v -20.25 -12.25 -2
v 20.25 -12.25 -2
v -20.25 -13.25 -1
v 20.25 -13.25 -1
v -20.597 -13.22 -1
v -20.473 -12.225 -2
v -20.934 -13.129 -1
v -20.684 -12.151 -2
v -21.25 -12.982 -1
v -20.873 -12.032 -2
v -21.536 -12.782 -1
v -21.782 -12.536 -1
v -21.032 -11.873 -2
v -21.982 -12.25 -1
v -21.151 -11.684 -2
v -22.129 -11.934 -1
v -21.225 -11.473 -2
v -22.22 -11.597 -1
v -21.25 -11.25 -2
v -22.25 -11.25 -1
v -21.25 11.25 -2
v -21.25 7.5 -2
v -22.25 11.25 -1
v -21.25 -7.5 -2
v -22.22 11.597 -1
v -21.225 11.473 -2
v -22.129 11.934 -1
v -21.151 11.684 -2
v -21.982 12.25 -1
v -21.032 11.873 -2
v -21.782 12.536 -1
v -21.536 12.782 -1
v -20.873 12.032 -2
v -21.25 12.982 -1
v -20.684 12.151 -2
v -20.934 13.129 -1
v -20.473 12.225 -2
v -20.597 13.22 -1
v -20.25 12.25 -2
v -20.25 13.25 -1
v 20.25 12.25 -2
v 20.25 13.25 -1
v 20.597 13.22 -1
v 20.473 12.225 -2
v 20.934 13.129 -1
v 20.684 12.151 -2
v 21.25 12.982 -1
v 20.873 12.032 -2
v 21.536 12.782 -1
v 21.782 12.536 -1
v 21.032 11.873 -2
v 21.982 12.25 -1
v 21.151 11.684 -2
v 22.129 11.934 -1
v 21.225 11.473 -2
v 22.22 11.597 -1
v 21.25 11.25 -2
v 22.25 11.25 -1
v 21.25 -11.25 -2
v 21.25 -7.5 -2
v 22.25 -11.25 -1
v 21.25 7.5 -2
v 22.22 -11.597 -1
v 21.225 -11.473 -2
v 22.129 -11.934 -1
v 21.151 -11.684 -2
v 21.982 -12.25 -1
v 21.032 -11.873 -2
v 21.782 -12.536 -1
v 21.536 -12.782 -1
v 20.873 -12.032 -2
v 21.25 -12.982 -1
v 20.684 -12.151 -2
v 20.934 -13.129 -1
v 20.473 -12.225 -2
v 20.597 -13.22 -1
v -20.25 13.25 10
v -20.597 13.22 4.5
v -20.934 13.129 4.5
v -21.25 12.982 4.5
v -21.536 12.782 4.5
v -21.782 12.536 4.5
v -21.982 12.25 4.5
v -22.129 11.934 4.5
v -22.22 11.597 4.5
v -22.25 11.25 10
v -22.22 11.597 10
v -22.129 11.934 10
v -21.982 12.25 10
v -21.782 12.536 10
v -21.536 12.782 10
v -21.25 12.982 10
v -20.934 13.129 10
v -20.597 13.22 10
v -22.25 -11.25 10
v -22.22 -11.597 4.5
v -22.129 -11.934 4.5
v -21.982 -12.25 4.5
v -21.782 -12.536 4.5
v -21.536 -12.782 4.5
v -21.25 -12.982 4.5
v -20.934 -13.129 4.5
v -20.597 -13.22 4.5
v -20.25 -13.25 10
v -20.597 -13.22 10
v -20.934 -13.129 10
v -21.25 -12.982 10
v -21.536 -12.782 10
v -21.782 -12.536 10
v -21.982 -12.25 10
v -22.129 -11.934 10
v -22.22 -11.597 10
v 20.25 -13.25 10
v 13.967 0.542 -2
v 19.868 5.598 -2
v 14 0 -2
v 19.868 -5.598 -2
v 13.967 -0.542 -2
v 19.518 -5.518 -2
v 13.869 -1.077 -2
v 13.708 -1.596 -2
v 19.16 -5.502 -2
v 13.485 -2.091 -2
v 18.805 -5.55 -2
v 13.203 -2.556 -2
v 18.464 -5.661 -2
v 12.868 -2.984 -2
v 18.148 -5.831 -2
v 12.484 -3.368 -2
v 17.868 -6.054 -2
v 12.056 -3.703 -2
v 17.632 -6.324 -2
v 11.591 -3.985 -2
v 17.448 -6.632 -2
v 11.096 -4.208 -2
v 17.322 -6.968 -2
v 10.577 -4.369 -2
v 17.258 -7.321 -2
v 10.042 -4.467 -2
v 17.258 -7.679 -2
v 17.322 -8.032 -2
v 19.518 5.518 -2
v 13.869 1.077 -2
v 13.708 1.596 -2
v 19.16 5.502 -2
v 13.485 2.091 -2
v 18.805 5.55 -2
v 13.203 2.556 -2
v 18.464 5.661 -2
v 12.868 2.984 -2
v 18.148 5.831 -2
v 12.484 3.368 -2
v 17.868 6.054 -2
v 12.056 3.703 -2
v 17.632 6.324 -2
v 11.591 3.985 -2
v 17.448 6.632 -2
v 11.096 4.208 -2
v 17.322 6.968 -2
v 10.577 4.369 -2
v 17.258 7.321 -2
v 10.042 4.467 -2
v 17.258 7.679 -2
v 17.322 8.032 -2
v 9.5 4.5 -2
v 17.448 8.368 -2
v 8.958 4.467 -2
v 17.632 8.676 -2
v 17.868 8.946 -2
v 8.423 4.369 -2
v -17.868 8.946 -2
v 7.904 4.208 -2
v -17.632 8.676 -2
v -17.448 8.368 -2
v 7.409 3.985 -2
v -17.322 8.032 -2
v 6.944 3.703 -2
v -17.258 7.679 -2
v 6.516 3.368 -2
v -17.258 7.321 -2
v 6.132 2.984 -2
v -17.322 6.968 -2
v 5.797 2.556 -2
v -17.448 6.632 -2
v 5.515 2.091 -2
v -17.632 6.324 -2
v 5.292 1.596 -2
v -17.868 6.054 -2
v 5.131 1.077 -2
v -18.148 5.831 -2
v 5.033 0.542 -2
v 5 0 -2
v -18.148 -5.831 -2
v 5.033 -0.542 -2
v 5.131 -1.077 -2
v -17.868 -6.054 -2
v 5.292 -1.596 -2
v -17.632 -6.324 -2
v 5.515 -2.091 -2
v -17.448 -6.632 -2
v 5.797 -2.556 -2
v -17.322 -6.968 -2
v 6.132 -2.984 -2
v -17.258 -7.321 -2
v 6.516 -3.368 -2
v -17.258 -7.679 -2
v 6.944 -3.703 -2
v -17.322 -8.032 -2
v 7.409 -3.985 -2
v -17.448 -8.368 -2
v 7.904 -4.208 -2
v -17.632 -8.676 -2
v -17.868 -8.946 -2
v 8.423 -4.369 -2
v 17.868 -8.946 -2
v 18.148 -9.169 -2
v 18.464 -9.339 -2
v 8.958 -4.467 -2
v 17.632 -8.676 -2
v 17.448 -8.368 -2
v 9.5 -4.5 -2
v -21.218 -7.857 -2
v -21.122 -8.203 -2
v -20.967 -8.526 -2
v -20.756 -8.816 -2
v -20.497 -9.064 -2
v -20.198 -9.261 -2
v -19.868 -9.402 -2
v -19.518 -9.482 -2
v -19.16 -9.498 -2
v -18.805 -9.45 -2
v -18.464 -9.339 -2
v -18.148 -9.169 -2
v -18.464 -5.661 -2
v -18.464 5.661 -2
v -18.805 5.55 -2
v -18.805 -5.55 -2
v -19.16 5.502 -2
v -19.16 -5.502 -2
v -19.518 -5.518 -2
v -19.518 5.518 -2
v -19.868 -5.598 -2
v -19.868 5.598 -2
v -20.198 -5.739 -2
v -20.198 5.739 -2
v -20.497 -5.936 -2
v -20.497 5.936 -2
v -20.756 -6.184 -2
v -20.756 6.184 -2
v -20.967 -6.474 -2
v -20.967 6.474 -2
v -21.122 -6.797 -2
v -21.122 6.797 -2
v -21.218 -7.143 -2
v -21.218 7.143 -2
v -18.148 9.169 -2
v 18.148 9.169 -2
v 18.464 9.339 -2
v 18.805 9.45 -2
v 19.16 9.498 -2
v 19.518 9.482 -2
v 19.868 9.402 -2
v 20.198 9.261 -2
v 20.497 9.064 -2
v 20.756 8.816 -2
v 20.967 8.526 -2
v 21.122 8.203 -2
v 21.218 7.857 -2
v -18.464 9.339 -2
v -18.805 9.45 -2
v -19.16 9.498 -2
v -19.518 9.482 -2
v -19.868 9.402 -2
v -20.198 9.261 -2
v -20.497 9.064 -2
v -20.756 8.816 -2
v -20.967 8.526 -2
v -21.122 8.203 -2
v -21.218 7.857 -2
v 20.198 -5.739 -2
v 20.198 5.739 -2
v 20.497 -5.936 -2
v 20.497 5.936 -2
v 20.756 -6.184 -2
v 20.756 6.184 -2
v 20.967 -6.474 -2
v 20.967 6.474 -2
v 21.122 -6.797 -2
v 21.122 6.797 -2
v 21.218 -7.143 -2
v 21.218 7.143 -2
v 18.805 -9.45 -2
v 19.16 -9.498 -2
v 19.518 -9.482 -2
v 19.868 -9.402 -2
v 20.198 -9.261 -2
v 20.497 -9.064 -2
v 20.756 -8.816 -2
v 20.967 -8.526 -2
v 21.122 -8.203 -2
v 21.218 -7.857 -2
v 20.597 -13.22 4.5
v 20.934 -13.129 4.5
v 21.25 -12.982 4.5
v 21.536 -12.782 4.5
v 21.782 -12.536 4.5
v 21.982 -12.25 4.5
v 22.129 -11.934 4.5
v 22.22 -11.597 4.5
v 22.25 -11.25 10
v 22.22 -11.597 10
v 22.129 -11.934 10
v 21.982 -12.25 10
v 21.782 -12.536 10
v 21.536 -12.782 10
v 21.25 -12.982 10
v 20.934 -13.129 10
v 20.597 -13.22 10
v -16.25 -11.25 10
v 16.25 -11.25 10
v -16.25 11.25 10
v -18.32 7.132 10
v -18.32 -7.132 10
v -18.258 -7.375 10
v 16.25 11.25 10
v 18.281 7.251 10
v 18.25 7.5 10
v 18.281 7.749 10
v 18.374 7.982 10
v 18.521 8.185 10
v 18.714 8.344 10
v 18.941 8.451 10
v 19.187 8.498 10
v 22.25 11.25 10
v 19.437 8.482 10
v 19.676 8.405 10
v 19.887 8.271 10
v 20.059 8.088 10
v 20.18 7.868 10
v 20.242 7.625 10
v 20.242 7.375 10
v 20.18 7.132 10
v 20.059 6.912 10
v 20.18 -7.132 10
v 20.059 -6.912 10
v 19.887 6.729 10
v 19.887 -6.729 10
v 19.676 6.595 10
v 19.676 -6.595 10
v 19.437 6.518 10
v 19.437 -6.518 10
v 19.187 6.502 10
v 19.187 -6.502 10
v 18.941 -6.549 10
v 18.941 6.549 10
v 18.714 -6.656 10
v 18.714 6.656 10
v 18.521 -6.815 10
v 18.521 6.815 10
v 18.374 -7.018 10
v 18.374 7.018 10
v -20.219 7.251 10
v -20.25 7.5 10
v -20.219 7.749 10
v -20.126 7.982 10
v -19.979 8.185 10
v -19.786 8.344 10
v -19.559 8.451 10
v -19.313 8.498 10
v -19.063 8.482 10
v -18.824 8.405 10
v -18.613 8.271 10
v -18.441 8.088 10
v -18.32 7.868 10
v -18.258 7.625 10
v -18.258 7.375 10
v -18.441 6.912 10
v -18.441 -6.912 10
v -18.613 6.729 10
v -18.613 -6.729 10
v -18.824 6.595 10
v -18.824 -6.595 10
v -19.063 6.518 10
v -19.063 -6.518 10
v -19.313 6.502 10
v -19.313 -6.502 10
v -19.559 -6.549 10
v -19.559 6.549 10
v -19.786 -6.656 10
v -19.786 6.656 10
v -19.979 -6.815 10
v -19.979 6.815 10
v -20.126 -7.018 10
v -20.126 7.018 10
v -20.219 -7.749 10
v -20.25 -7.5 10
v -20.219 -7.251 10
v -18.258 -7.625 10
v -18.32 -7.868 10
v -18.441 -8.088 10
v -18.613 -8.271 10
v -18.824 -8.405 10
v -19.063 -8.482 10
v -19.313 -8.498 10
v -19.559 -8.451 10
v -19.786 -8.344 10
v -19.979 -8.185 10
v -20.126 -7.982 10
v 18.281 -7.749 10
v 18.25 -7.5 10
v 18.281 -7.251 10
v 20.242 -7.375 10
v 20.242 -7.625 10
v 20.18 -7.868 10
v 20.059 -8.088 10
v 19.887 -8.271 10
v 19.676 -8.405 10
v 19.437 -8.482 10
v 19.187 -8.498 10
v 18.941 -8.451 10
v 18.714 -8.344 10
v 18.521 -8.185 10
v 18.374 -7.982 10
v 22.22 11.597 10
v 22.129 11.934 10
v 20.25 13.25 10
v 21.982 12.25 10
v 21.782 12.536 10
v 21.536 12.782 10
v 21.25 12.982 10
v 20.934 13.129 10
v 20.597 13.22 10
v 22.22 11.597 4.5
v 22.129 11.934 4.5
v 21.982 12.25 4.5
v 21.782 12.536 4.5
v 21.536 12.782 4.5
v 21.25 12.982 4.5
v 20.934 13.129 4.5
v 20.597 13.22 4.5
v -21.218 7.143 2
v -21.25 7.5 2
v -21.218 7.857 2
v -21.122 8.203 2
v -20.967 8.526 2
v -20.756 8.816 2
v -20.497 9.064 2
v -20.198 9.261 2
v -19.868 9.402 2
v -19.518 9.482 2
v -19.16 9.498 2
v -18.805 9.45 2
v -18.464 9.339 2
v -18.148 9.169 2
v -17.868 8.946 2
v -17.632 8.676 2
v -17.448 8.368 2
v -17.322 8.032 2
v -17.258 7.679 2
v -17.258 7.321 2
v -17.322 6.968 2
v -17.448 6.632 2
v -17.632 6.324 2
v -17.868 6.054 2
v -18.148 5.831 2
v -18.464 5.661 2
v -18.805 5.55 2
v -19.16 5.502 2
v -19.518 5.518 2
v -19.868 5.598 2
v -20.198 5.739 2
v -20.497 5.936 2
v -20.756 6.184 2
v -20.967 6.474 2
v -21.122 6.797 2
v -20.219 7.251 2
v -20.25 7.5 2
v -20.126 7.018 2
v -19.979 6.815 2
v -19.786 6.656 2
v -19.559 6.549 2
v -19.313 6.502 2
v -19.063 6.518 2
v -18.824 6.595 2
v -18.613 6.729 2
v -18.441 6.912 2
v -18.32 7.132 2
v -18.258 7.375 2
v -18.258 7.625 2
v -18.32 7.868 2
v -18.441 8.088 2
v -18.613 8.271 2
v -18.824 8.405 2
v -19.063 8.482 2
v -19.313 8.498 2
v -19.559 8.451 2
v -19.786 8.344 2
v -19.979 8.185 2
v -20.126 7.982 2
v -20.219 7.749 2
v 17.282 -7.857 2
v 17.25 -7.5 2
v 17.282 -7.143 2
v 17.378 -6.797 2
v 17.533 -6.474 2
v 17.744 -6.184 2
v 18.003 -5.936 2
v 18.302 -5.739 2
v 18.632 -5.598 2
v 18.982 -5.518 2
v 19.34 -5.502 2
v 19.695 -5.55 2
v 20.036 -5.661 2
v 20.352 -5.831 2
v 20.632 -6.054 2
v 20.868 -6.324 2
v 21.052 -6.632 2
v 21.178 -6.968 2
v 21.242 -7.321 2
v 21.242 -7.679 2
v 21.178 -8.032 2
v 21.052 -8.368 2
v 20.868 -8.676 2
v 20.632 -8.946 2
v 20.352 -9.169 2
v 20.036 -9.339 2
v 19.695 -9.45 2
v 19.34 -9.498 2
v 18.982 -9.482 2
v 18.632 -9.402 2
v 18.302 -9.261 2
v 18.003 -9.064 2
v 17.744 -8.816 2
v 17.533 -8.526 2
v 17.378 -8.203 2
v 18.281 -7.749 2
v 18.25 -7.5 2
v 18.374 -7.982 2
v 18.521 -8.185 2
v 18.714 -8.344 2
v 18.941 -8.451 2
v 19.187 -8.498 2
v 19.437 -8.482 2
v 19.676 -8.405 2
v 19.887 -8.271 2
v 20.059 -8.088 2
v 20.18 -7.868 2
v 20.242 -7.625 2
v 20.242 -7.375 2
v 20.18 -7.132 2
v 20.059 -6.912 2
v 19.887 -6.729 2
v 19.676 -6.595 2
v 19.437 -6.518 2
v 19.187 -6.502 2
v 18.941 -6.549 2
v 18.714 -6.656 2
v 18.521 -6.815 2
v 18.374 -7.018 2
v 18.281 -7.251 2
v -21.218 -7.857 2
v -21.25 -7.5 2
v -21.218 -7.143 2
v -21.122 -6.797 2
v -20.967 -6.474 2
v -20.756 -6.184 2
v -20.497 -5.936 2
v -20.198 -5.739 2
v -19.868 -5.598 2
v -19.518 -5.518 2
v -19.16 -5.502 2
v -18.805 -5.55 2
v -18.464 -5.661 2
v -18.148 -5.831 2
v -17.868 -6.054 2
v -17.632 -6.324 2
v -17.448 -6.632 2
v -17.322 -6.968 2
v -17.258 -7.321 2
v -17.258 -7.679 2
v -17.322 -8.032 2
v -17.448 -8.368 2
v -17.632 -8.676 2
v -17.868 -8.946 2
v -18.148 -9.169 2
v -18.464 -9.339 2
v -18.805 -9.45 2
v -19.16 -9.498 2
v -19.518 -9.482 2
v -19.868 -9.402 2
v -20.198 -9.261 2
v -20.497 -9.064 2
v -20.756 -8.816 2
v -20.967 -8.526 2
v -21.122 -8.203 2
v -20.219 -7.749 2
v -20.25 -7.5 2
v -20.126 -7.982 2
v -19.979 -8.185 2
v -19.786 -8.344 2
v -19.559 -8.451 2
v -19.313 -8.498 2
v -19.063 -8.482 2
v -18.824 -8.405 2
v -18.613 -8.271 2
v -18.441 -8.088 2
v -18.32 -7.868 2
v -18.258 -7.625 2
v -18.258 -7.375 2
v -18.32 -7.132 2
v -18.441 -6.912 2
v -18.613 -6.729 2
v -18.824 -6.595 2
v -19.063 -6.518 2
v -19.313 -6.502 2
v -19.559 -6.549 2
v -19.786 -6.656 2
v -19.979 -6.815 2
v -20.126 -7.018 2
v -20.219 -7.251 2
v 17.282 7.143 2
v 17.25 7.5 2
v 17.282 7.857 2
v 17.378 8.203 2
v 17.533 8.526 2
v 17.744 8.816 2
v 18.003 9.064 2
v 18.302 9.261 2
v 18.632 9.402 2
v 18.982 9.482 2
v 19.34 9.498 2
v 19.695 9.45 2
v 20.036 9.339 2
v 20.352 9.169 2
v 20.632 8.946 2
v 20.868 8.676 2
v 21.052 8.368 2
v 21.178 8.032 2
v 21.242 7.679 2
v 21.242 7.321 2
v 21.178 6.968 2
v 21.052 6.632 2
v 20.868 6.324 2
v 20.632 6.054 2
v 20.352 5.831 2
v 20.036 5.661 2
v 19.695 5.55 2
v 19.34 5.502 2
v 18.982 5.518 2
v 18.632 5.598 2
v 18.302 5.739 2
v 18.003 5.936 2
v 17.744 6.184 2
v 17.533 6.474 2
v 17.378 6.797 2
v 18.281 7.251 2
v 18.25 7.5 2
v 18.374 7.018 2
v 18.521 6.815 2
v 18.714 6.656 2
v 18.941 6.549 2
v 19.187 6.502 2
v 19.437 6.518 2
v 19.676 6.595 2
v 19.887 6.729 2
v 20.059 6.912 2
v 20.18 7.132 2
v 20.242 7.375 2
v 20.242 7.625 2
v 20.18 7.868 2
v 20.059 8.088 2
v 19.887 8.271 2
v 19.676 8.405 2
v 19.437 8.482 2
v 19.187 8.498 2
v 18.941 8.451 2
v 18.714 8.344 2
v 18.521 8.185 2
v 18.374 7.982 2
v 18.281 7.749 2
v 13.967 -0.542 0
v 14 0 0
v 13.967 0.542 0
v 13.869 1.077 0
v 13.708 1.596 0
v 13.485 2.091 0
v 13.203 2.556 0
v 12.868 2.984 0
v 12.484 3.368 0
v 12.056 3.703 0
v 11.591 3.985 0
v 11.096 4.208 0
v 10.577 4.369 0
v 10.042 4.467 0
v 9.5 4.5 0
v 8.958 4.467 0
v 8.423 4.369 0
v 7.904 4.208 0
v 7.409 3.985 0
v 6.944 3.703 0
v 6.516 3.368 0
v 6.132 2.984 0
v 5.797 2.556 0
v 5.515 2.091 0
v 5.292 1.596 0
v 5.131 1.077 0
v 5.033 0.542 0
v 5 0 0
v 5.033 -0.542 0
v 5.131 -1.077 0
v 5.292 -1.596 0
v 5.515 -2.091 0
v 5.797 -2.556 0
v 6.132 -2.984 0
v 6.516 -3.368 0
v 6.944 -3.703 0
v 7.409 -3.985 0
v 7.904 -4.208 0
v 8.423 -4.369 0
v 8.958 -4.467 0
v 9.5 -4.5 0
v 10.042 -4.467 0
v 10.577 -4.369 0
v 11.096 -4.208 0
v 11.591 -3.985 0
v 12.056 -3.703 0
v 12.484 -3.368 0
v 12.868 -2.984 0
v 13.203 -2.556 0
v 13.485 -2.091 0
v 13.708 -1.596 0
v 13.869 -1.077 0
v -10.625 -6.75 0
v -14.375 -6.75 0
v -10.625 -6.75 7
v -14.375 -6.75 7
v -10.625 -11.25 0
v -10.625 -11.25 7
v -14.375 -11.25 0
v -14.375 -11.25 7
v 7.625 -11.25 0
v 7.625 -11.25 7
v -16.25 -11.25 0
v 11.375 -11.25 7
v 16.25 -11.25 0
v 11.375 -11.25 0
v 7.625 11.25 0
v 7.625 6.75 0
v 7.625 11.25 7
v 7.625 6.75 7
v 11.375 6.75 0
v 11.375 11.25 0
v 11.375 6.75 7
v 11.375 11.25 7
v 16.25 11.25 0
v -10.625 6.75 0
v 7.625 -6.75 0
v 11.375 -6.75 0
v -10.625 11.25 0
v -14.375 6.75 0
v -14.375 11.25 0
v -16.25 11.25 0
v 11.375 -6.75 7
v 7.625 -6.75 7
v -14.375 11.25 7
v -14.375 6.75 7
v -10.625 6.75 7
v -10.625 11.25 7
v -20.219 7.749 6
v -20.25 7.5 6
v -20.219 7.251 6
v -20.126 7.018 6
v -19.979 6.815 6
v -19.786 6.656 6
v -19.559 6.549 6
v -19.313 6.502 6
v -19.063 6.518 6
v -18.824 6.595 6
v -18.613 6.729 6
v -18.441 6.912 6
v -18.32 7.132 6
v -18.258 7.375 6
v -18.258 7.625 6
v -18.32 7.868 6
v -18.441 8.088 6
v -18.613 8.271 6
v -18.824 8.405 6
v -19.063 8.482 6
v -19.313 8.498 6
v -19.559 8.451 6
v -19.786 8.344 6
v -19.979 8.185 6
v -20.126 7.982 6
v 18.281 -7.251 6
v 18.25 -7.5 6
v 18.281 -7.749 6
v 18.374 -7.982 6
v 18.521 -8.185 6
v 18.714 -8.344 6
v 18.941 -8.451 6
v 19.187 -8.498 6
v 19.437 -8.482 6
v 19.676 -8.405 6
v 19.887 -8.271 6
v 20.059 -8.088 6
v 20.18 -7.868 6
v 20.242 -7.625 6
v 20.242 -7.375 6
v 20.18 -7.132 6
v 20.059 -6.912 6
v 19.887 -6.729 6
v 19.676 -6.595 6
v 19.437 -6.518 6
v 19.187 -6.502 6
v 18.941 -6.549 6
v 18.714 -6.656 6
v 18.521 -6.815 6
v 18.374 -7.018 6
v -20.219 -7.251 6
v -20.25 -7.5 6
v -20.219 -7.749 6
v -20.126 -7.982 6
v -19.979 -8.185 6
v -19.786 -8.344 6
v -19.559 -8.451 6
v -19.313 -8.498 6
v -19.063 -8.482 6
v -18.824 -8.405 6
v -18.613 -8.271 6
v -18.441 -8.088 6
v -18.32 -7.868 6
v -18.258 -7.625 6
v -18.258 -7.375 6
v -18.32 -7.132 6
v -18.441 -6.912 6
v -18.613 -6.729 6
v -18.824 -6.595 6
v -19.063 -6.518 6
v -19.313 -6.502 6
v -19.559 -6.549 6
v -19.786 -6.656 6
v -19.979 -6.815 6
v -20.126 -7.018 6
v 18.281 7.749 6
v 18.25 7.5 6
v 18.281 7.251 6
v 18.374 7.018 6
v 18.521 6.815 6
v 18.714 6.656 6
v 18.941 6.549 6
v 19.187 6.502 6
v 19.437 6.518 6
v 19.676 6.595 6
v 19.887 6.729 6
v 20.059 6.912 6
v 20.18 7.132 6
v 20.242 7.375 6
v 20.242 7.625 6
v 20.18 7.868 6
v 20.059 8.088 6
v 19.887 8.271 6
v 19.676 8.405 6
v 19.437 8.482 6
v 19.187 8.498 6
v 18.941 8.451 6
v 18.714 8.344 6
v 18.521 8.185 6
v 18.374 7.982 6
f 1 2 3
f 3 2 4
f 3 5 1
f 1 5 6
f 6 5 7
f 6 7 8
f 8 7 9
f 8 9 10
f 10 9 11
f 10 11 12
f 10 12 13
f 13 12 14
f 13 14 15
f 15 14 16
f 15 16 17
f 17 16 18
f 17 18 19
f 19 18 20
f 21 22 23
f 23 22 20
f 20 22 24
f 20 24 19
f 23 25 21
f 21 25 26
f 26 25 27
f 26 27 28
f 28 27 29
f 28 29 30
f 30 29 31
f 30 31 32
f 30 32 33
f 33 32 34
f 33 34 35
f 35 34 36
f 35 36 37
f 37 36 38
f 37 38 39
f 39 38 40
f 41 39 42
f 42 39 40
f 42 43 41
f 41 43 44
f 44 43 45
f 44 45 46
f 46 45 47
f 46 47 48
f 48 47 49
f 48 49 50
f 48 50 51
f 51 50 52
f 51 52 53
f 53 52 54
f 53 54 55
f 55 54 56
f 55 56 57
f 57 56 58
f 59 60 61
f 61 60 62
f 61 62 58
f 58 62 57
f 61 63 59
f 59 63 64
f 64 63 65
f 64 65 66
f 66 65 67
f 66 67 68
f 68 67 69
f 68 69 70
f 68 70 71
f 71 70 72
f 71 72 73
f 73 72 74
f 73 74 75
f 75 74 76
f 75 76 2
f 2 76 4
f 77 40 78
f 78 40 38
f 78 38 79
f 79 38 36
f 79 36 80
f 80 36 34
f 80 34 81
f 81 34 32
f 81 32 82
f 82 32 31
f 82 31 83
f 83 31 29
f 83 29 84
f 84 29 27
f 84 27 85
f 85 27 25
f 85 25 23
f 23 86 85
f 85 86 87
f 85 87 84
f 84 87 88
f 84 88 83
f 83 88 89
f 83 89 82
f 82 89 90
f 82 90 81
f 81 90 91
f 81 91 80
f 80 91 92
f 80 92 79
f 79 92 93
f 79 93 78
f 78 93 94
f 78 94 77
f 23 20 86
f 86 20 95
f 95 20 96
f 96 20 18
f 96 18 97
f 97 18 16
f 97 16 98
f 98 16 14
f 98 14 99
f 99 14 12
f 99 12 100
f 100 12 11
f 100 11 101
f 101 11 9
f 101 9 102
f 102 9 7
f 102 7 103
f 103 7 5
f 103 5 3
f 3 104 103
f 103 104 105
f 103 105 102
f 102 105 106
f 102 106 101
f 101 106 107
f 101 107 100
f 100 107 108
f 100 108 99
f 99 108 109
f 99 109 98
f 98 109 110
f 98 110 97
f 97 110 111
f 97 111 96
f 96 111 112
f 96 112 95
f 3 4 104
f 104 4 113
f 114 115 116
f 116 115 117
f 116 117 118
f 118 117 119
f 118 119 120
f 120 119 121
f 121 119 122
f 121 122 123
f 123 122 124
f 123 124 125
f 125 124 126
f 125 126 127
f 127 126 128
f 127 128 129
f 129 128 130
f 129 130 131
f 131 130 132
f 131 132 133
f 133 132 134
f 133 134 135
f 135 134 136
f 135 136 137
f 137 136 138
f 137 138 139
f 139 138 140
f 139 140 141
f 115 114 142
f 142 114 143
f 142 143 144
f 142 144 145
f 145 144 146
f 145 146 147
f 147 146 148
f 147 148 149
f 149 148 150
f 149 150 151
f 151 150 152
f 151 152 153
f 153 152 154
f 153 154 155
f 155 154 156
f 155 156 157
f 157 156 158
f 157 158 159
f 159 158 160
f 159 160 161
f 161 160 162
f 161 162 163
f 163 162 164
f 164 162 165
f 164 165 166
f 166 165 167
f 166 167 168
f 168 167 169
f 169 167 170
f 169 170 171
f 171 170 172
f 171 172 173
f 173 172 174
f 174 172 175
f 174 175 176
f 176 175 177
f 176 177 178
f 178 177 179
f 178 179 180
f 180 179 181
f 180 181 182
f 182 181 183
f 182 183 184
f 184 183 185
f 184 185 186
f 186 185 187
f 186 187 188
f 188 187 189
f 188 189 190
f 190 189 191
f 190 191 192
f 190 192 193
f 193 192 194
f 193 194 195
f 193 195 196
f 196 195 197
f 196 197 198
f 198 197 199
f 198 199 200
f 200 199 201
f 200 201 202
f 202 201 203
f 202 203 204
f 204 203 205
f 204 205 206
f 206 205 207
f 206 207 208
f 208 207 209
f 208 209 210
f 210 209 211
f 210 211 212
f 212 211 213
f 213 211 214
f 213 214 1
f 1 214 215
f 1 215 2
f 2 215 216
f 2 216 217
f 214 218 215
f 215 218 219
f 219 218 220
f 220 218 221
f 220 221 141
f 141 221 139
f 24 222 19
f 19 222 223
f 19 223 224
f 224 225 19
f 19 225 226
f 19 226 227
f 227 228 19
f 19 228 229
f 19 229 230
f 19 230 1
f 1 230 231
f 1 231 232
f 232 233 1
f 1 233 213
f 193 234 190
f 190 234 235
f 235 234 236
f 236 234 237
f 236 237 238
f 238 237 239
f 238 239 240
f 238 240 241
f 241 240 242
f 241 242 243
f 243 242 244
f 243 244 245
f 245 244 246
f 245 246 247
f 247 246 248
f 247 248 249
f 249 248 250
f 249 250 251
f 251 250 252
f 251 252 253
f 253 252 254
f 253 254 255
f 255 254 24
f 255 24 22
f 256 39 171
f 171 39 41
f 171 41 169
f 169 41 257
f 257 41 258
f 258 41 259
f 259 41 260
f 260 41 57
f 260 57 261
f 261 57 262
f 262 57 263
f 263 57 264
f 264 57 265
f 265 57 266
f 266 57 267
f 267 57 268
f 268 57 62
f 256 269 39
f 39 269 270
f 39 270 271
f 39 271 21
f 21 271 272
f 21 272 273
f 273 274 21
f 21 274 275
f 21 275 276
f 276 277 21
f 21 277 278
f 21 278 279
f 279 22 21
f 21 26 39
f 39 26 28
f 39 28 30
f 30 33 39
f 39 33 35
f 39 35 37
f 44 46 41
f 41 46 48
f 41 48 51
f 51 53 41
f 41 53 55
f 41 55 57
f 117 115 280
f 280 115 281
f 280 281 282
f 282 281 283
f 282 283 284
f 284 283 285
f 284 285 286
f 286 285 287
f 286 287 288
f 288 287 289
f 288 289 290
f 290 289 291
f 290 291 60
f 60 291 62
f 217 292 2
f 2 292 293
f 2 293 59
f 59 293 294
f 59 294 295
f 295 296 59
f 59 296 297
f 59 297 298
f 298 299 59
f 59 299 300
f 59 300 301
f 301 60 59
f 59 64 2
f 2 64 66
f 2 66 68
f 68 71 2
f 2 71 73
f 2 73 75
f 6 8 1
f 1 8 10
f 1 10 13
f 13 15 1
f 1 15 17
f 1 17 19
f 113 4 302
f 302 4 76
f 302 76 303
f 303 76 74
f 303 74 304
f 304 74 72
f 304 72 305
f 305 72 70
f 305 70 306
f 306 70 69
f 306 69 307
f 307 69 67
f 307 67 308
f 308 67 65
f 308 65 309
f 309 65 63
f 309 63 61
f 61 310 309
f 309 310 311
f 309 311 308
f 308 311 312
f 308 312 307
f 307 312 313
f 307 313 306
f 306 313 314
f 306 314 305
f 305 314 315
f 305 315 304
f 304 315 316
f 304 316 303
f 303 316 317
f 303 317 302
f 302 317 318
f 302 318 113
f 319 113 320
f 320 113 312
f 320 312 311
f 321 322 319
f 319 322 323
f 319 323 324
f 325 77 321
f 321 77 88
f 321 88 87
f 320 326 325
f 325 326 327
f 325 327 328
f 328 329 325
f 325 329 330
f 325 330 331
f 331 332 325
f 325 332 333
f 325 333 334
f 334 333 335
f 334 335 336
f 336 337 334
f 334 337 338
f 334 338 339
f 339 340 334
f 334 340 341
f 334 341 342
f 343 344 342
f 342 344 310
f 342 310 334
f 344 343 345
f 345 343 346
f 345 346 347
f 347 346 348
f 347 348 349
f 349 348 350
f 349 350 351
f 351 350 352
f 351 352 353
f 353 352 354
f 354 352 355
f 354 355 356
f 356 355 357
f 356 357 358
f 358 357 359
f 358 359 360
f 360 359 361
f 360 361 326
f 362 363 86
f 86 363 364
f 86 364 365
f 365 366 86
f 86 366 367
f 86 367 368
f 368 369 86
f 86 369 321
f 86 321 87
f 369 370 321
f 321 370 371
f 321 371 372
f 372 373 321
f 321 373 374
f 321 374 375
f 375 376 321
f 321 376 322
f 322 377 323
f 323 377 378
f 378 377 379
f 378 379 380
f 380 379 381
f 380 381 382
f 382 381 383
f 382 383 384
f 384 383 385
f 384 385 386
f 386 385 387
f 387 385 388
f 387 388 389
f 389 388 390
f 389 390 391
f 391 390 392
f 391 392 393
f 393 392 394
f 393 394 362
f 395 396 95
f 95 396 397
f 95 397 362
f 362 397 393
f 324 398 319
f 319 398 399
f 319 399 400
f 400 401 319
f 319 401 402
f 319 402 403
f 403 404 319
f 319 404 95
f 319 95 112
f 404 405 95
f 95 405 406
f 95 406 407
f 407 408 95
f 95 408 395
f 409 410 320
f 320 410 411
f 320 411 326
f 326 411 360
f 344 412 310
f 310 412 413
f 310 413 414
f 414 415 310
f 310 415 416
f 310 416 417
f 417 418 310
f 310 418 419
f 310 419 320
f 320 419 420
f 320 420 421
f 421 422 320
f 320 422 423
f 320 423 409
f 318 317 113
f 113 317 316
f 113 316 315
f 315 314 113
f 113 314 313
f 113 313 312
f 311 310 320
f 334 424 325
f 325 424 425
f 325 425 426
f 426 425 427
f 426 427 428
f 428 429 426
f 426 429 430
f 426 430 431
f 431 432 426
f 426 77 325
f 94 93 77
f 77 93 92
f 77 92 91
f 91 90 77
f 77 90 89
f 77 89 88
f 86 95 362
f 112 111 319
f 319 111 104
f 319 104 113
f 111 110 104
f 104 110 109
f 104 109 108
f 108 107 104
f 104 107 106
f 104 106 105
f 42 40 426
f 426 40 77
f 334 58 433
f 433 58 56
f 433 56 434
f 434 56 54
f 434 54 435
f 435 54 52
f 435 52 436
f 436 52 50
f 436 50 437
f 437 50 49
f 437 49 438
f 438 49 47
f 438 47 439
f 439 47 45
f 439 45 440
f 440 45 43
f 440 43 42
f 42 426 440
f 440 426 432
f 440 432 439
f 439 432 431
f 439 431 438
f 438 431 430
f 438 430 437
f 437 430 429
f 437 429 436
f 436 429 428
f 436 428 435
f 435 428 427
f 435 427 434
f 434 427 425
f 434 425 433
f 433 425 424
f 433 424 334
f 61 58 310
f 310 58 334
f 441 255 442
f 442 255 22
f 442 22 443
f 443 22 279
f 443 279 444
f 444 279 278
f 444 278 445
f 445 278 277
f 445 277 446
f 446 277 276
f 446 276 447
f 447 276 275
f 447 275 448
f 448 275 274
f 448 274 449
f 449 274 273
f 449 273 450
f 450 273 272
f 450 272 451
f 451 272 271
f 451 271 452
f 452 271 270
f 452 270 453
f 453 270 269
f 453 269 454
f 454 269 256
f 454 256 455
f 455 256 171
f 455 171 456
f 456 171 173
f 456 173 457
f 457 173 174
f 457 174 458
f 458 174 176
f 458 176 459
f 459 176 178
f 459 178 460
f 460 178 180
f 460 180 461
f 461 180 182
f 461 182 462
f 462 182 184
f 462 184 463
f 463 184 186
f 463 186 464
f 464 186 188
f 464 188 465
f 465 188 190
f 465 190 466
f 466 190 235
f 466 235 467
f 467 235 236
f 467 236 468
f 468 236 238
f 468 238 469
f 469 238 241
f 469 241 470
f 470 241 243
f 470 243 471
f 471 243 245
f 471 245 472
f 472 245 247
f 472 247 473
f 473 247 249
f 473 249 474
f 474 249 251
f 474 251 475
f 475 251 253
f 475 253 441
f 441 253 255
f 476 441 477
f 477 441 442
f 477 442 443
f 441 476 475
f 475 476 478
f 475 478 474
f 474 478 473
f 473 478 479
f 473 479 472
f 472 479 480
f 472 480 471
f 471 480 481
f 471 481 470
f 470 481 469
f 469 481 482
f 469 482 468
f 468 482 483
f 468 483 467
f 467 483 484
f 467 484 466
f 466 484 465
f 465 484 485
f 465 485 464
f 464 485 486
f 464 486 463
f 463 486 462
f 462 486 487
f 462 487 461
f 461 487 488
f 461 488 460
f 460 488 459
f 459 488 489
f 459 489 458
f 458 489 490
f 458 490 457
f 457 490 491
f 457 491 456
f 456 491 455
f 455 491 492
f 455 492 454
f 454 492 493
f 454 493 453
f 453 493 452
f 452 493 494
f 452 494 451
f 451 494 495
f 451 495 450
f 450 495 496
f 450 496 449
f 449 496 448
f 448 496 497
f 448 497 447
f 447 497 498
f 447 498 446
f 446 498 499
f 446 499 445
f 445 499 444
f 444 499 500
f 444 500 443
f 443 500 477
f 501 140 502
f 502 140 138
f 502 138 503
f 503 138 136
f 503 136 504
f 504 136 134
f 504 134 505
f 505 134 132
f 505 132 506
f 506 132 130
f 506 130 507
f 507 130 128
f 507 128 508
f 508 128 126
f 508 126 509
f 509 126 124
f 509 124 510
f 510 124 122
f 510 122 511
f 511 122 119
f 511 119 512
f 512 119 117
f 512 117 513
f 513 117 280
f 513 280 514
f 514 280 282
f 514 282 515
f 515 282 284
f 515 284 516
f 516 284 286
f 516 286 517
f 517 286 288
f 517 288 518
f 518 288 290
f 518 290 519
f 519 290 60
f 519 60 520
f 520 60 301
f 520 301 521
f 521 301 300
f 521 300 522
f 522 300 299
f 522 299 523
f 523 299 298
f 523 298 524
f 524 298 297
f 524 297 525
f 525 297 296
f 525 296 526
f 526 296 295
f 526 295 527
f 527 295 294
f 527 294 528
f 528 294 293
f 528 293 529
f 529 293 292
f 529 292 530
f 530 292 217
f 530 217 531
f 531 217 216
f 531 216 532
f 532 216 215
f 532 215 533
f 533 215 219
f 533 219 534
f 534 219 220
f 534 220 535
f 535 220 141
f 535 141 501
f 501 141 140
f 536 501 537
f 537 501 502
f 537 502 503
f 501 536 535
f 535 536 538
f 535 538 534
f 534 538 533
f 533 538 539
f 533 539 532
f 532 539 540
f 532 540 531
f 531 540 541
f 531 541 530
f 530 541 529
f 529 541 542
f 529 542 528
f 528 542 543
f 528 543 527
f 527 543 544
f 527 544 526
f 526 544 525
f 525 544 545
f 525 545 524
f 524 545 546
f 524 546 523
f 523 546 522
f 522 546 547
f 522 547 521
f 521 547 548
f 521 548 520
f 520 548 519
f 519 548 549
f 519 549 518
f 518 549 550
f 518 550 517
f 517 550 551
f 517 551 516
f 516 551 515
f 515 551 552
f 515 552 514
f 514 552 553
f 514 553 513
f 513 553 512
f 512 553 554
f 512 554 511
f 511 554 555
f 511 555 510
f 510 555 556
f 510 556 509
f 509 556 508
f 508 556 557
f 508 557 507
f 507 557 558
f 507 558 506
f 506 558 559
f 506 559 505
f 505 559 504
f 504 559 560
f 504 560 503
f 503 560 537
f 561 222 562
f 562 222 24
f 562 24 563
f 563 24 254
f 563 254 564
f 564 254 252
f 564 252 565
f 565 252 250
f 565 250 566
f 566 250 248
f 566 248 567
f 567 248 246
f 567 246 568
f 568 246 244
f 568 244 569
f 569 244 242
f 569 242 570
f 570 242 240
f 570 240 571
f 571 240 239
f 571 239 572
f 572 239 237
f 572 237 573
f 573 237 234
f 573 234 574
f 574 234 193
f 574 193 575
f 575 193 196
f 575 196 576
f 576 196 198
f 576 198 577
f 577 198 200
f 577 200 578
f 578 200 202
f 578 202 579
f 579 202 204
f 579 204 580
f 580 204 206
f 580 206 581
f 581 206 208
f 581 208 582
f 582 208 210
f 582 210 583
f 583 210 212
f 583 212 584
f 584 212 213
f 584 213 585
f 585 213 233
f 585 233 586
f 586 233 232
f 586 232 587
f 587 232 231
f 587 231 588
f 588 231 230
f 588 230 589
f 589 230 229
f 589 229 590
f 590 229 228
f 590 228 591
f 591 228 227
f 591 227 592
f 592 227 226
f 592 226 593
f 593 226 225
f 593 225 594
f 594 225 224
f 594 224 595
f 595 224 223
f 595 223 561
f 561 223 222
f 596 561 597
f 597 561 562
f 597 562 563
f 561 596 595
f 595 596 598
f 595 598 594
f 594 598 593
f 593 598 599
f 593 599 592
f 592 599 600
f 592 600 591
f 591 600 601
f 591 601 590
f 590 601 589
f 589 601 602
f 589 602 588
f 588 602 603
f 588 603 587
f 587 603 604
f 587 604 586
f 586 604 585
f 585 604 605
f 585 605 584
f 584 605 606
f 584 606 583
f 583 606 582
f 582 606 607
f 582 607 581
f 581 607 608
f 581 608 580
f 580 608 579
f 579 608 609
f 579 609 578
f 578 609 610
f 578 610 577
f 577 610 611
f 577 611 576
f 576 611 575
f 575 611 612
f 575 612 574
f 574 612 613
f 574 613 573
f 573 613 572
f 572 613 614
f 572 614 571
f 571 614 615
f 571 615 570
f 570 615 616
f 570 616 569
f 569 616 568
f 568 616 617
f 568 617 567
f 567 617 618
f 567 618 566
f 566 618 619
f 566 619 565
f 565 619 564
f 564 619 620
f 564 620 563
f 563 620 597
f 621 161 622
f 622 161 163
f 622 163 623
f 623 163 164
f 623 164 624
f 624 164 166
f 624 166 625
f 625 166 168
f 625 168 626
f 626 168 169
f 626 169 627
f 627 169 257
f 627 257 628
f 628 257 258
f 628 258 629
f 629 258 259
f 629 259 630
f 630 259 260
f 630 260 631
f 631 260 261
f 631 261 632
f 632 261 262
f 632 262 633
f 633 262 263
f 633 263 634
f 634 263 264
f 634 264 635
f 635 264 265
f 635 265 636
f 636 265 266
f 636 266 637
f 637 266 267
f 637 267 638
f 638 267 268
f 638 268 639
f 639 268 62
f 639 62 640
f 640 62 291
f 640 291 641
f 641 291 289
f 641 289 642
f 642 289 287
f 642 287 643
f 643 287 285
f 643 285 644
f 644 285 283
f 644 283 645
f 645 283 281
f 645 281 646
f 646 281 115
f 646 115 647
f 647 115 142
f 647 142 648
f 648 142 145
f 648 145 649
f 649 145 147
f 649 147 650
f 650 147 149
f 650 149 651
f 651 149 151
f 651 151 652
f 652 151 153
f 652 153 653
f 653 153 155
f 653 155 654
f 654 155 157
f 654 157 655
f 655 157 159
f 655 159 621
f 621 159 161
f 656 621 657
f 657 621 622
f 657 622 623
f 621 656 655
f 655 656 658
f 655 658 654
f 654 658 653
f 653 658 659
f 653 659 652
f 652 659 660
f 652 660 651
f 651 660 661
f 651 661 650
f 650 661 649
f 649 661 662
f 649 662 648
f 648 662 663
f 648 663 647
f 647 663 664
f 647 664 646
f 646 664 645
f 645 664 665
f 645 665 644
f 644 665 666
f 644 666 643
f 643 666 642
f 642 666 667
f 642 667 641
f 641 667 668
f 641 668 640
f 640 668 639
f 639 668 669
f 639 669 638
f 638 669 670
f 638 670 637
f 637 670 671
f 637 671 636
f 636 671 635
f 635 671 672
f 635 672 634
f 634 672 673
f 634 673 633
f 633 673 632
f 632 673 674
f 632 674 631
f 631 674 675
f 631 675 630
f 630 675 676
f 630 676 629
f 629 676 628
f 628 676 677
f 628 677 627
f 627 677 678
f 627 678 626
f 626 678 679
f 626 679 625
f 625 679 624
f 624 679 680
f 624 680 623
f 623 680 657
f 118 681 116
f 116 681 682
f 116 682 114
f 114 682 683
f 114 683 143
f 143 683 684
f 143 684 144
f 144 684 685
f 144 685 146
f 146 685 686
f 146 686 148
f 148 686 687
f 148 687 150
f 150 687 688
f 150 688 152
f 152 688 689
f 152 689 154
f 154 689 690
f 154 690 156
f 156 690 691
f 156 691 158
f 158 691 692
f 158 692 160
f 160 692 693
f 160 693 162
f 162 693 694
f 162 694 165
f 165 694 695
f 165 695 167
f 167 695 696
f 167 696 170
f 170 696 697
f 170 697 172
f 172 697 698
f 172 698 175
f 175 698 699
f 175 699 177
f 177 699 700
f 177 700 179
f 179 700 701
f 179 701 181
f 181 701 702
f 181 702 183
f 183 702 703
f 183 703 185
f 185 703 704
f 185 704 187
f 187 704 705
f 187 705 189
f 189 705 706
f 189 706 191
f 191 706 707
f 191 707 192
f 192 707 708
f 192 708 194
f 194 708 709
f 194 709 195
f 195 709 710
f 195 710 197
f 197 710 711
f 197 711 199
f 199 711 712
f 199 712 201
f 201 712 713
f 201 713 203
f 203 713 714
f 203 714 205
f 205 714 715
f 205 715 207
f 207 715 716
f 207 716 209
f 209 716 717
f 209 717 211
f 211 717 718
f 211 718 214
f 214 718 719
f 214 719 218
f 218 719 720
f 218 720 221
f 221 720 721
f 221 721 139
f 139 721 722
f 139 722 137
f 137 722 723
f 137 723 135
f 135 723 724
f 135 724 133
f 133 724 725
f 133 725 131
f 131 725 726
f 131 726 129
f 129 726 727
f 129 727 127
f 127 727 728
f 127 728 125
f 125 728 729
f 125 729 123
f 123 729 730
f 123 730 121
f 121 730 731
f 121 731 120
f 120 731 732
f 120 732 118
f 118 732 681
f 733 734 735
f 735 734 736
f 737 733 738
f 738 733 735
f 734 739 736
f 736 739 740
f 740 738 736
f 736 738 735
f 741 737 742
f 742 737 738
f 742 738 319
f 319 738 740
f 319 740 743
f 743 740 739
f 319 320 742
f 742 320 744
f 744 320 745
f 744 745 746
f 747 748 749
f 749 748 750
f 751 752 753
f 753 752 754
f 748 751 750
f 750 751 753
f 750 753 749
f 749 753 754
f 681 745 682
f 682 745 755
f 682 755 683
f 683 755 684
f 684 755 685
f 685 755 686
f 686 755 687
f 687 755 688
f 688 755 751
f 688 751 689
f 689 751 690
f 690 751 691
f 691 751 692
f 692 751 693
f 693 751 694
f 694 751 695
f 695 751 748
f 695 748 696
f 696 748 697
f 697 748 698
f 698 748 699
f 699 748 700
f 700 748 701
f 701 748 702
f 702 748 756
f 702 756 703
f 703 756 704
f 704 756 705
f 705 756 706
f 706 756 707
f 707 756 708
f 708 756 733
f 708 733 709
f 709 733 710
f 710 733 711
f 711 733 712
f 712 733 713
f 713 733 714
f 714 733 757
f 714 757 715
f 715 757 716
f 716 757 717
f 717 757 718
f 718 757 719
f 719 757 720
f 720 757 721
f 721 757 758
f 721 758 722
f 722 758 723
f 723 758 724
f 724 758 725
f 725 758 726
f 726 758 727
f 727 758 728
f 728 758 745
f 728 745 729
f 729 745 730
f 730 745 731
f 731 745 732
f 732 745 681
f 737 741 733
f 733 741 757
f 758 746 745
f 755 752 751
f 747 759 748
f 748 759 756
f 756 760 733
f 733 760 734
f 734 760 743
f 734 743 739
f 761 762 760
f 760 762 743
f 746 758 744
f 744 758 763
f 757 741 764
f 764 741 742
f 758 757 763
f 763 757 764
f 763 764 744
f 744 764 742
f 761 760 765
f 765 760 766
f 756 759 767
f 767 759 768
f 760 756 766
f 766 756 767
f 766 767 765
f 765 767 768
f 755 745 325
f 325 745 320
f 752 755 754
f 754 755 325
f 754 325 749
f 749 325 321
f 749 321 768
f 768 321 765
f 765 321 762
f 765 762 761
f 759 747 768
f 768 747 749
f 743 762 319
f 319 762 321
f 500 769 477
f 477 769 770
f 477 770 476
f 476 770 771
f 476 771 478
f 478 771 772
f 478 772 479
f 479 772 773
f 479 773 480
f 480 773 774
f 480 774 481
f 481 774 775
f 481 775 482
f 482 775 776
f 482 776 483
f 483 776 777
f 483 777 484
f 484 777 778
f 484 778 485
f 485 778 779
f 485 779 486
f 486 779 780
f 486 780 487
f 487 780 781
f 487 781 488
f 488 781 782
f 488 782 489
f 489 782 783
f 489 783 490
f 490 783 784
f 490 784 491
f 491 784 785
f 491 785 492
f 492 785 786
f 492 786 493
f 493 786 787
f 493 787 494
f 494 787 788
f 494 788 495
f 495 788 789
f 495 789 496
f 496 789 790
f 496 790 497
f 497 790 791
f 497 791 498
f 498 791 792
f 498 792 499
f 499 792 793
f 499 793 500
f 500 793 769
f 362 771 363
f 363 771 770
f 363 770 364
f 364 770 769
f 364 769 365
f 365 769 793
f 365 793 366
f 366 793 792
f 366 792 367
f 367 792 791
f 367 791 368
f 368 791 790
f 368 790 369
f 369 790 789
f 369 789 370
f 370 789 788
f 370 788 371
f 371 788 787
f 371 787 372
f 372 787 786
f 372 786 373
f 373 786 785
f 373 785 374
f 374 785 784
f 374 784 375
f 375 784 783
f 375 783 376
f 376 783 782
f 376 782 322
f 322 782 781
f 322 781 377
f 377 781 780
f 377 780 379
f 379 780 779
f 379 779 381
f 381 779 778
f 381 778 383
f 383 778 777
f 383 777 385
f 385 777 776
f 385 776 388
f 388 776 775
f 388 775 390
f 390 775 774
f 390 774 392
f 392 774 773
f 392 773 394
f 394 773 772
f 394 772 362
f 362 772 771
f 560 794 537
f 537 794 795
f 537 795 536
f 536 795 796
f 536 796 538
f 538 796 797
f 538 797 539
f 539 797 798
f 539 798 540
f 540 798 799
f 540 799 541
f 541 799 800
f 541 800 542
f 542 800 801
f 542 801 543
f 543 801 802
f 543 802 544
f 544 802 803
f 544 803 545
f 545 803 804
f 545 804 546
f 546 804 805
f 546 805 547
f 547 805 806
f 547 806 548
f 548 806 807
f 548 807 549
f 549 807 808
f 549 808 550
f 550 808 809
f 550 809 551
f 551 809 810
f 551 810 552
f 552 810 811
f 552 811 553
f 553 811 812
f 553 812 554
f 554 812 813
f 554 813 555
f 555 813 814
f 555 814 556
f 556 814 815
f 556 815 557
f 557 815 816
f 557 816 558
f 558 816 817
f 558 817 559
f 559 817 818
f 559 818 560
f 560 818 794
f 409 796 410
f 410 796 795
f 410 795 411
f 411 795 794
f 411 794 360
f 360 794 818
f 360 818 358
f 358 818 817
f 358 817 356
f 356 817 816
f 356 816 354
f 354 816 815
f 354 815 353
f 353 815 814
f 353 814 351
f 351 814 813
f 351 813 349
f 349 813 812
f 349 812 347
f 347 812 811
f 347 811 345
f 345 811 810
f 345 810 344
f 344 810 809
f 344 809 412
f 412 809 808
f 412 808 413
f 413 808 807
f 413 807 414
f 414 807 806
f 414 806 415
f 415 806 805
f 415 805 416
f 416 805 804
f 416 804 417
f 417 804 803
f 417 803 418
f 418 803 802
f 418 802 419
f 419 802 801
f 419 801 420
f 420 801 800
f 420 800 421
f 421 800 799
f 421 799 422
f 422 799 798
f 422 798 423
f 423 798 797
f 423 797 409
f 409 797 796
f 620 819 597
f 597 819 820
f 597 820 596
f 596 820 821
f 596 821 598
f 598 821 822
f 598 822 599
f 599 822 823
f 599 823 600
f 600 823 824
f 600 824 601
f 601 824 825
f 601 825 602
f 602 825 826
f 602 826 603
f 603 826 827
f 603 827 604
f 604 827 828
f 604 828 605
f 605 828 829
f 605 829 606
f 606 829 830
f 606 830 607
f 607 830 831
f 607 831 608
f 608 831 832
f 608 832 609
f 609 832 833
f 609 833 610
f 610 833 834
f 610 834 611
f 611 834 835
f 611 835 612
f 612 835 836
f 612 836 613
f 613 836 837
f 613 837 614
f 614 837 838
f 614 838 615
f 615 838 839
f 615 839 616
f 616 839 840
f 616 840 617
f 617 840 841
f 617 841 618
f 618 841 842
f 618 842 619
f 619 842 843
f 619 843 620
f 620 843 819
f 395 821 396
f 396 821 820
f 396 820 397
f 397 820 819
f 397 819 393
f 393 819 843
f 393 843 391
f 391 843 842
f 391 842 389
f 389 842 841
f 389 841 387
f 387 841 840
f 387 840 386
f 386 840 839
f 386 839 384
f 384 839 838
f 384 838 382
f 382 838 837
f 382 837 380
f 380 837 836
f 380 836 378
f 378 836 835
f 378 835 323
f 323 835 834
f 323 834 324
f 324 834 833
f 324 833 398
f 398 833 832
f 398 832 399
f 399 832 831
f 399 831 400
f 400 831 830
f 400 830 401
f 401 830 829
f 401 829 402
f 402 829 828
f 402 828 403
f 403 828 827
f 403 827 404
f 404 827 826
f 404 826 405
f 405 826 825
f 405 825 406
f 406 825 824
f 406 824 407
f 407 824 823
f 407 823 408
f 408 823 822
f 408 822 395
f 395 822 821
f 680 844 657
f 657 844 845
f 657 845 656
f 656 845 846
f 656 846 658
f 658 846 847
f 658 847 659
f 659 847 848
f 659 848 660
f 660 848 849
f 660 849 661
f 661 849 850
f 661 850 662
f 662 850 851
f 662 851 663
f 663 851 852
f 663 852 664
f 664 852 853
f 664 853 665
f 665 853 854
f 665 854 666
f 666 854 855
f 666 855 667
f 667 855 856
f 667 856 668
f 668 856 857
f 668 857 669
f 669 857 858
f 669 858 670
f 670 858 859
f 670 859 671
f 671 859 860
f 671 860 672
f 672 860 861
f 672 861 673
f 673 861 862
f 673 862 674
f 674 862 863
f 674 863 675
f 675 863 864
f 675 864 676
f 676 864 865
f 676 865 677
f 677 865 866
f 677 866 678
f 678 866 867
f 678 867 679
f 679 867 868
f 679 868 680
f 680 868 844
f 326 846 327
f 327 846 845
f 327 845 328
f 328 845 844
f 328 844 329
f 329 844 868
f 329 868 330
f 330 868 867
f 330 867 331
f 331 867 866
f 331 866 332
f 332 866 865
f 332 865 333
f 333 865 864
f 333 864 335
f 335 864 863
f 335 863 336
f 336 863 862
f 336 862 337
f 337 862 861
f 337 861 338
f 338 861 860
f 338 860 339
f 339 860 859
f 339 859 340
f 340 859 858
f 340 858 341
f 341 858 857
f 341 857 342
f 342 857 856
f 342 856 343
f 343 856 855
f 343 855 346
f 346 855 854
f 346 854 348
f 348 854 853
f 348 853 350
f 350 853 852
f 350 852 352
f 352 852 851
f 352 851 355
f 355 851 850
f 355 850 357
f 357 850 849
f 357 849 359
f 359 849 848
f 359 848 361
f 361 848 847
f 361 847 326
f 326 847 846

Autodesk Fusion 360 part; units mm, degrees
sketch "Sketch1" plane through (0, 0, 0) normal (0, 0, 1) x (1, 0, 0)
  line L0 (-16.25, 11.25) -> (16.25, 11.25)
  line L1 (16.25, 11.25) -> (16.25, -11.25)
  line L2 (16.25, -11.25) -> (-16.25, -11.25)
  line L3 (-16.25, -11.25) -> (-16.25, 11.25)
  line L4 (-22.25, 13.25) -> (22.25, 13.25)
  line L5 (22.25, 13.25) -> (22.25, -13.25)
  line L6 (22.25, -13.25) -> (-22.25, -13.25)
  line L7 (-22.25, -13.25) -> (-22.25, 13.25)
  line L8 (-22.25, 13.25) -> (22.25, -13.25) construction
  line L9 (22.25, 13.25) -> (-22.25, -13.25) construction
  line L10 (-19.25, 7.5) -> (-19.25, -7.5) construction
  line L11 (-22.25, 0) -> (-16.25, 0) construction
  line L12 (16.25, 0) -> (22.25, 0) construction
  line L13 (19.25, 7.5) -> (19.25, -7.5) construction
  circle A0 centre (-19.25, 7.5) radius 1
  circle A1 centre (-19.25, -7.5) radius 1
  circle A2 centre (19.25, -7.5) radius 1
  circle A3 centre (19.25, 7.5) radius 1
  point P0 (-19.25, 0)
  point P1 (-19.25, 0)
  point P2 (19.25, 0)
  point P3 (19.25, 0)
  dimension "d1" = 32.5
  dimension "d2" = 22.5
  dimension "d3" = 2
  dimension "d4" = 6
  dimension "d21" = 6
  dimension "d22" = 2
  dimension "d23" = 15
  dimension "d24" = 2
extrude "Extrude1" add sketch "Sketch1" against normal blind 2 contours L0 L1 L2 L3 | L4 L5 L6 L7
extrude "Extrude2" add sketch "Sketch1" along normal blind 10
sketch "Sketch2" plane through (0, 0, 0) normal (0, 0, 1) x (-1, 0, 0)
  line L0 (-16.25, 11.25) -> (-16.25, -11.25)
  line L1 (-16.25, -11.25) -> (16.25, -11.25)
  line L2 (16.25, -11.25) -> (16.25, 11.25)
  line L3 (16.25, 11.25) -> (-16.25, 11.25)
  line L4 (12.5, 9) -> (12.5, -9) construction
  line L5 (12.5, -9) -> (-9.5, -9) construction
  line L6 (-9.5, 9) -> (12.5, 9) construction
  line L7 (-9.5, -9) -> (-9.5, 9) construction
  line L8 (12.5, -9) -> (-9.5, 9) construction
  line L9 (12.5, 9) -> (-9.5, -9) construction
  line L10 (14.375, -11.25) -> (10.625, -11.25)
  line L11 (10.625, -11.25) -> (10.625, -6.75)
  line L12 (10.625, -6.75) -> (14.375, -6.75)
  line L13 (14.375, -6.75) -> (14.375, -11.25)
  line L14 (14.375, -11.25) -> (10.625, -6.75) construction
  line L15 (10.625, -11.25) -> (14.375, -6.75) construction
  line L16 (-7.625, -11.25) -> (-11.375, -11.25)
  line L17 (-11.375, -11.25) -> (-11.375, -6.75)
  line L18 (-11.375, -6.75) -> (-7.625, -6.75)
  line L19 (-7.625, -6.75) -> (-7.625, -11.25)
  line L20 (-7.625, -11.25) -> (-11.375, -6.75) construction
  line L21 (-11.375, -11.25) -> (-7.625, -6.75) construction
  line L22 (14.375, 11.25) -> (10.625, 11.25)
  line L23 (10.625, 11.25) -> (10.625, 6.75)
  line L24 (10.625, 6.75) -> (14.375, 6.75)
  line L25 (14.375, 6.75) -> (14.375, 11.25)
  line L26 (14.375, 11.25) -> (10.625, 6.75) construction
  line L27 (10.625, 11.25) -> (14.375, 6.75) construction
  line L28 (-11.375, 11.25) -> (-7.625, 11.25)
  line L29 (-7.625, 11.25) -> (-7.625, 6.75)
  line L30 (-7.625, 6.75) -> (-11.375, 6.75)
  line L31 (-11.375, 6.75) -> (-11.375, 11.25)
  line L32 (-11.375, 11.25) -> (-7.625, 6.75) construction
  line L33 (-7.625, 11.25) -> (-11.375, 6.75) construction
  circle A0 centre (12.5, -9) radius 0.875
  circle A1 centre (-9.5, -9) radius 0.875
  circle A2 centre (-9.5, 9) radius 0.875
  circle A3 centre (12.5, 9) radius 0.875
  circle A4 centre (-9.5, 0) radius 4.5
  point P0 (1.5, 0)
  point P1 (12.5, -9)
  point P2 (-9.5, -9)
  point P3 (12.5, 9)
  point P4 (-9.5, 9)
  dimension "d9" = 18
  dimension "d10" = 22
  dimension "d11" = 1.5
  dimension "d12" = 3.75
  dimension "d13" = 1.75
  dimension "d16" = 9
extrude "Extrude3" add sketch "Sketch2" along normal blind 7 contours L3 L28 L29 L30 L31 | L1 L16 L17 L18 L19 | L3 L22 L23 L24 L25 | L1 L10 L11 L12 L13 | A0 | A1 | A2 | A3
extrude "Extrude4" cut sketch "Sketch2" against normal through all contours A4
sketch "Sketch3" plane through (0, 0, -2) normal (0, 0, -1) x (1, 0, 0)
  circle A0 centre (9.5, 0) radius 4.5
  circle A1 centre (19.25, -7.5) radius 1
  circle A2 centre (-19.25, 7.5) radius 1
  circle A3 centre (19.25, 7.5) radius 1
  circle A4 centre (-19.25, -7.5) radius 1
  line L0 (22.25, 13.25) -> (-22.25, 13.25)
  line L1 (-22.25, 13.25) -> (-22.25, -13.25)
  line L2 (-22.25, -13.25) -> (22.25, -13.25)
  line L3 (22.25, -13.25) -> (22.25, 13.25)
  circle A5 centre (-19.25, 7.5) radius 2
  circle A6 centre (-19.25, -7.5) radius 2
  circle A7 centre (19.25, -7.5) radius 2
  circle A8 centre (19.25, 7.5) radius 2
  dimension "d25" = 4
extrude "Extrude5" cut sketch "Sketch3" against normal blind 4 contours A5 | A6 | A7 | A8
fillet "Fillet1" radius 2 4 edges at (22.25, 13.25, 4) (-22.25, 13.25, 4) (-22.25, -13.25, 4) (22.25, -13.25, 4)
chamfer "Chamfer1" distance 1 angle 45 8 edges at (0, -13.25, -2) (-21.6642, -12.6642, -2) (-22.25, 0, -2) (-21.6642, 12.6642, -2) (0, 13.25, -2) (21.6642, 12.6642, -2) (22.25, 0, -2) (21.6642, -12.6642, -2)
equation "d21 = d4"
equation "d22 = d3"
